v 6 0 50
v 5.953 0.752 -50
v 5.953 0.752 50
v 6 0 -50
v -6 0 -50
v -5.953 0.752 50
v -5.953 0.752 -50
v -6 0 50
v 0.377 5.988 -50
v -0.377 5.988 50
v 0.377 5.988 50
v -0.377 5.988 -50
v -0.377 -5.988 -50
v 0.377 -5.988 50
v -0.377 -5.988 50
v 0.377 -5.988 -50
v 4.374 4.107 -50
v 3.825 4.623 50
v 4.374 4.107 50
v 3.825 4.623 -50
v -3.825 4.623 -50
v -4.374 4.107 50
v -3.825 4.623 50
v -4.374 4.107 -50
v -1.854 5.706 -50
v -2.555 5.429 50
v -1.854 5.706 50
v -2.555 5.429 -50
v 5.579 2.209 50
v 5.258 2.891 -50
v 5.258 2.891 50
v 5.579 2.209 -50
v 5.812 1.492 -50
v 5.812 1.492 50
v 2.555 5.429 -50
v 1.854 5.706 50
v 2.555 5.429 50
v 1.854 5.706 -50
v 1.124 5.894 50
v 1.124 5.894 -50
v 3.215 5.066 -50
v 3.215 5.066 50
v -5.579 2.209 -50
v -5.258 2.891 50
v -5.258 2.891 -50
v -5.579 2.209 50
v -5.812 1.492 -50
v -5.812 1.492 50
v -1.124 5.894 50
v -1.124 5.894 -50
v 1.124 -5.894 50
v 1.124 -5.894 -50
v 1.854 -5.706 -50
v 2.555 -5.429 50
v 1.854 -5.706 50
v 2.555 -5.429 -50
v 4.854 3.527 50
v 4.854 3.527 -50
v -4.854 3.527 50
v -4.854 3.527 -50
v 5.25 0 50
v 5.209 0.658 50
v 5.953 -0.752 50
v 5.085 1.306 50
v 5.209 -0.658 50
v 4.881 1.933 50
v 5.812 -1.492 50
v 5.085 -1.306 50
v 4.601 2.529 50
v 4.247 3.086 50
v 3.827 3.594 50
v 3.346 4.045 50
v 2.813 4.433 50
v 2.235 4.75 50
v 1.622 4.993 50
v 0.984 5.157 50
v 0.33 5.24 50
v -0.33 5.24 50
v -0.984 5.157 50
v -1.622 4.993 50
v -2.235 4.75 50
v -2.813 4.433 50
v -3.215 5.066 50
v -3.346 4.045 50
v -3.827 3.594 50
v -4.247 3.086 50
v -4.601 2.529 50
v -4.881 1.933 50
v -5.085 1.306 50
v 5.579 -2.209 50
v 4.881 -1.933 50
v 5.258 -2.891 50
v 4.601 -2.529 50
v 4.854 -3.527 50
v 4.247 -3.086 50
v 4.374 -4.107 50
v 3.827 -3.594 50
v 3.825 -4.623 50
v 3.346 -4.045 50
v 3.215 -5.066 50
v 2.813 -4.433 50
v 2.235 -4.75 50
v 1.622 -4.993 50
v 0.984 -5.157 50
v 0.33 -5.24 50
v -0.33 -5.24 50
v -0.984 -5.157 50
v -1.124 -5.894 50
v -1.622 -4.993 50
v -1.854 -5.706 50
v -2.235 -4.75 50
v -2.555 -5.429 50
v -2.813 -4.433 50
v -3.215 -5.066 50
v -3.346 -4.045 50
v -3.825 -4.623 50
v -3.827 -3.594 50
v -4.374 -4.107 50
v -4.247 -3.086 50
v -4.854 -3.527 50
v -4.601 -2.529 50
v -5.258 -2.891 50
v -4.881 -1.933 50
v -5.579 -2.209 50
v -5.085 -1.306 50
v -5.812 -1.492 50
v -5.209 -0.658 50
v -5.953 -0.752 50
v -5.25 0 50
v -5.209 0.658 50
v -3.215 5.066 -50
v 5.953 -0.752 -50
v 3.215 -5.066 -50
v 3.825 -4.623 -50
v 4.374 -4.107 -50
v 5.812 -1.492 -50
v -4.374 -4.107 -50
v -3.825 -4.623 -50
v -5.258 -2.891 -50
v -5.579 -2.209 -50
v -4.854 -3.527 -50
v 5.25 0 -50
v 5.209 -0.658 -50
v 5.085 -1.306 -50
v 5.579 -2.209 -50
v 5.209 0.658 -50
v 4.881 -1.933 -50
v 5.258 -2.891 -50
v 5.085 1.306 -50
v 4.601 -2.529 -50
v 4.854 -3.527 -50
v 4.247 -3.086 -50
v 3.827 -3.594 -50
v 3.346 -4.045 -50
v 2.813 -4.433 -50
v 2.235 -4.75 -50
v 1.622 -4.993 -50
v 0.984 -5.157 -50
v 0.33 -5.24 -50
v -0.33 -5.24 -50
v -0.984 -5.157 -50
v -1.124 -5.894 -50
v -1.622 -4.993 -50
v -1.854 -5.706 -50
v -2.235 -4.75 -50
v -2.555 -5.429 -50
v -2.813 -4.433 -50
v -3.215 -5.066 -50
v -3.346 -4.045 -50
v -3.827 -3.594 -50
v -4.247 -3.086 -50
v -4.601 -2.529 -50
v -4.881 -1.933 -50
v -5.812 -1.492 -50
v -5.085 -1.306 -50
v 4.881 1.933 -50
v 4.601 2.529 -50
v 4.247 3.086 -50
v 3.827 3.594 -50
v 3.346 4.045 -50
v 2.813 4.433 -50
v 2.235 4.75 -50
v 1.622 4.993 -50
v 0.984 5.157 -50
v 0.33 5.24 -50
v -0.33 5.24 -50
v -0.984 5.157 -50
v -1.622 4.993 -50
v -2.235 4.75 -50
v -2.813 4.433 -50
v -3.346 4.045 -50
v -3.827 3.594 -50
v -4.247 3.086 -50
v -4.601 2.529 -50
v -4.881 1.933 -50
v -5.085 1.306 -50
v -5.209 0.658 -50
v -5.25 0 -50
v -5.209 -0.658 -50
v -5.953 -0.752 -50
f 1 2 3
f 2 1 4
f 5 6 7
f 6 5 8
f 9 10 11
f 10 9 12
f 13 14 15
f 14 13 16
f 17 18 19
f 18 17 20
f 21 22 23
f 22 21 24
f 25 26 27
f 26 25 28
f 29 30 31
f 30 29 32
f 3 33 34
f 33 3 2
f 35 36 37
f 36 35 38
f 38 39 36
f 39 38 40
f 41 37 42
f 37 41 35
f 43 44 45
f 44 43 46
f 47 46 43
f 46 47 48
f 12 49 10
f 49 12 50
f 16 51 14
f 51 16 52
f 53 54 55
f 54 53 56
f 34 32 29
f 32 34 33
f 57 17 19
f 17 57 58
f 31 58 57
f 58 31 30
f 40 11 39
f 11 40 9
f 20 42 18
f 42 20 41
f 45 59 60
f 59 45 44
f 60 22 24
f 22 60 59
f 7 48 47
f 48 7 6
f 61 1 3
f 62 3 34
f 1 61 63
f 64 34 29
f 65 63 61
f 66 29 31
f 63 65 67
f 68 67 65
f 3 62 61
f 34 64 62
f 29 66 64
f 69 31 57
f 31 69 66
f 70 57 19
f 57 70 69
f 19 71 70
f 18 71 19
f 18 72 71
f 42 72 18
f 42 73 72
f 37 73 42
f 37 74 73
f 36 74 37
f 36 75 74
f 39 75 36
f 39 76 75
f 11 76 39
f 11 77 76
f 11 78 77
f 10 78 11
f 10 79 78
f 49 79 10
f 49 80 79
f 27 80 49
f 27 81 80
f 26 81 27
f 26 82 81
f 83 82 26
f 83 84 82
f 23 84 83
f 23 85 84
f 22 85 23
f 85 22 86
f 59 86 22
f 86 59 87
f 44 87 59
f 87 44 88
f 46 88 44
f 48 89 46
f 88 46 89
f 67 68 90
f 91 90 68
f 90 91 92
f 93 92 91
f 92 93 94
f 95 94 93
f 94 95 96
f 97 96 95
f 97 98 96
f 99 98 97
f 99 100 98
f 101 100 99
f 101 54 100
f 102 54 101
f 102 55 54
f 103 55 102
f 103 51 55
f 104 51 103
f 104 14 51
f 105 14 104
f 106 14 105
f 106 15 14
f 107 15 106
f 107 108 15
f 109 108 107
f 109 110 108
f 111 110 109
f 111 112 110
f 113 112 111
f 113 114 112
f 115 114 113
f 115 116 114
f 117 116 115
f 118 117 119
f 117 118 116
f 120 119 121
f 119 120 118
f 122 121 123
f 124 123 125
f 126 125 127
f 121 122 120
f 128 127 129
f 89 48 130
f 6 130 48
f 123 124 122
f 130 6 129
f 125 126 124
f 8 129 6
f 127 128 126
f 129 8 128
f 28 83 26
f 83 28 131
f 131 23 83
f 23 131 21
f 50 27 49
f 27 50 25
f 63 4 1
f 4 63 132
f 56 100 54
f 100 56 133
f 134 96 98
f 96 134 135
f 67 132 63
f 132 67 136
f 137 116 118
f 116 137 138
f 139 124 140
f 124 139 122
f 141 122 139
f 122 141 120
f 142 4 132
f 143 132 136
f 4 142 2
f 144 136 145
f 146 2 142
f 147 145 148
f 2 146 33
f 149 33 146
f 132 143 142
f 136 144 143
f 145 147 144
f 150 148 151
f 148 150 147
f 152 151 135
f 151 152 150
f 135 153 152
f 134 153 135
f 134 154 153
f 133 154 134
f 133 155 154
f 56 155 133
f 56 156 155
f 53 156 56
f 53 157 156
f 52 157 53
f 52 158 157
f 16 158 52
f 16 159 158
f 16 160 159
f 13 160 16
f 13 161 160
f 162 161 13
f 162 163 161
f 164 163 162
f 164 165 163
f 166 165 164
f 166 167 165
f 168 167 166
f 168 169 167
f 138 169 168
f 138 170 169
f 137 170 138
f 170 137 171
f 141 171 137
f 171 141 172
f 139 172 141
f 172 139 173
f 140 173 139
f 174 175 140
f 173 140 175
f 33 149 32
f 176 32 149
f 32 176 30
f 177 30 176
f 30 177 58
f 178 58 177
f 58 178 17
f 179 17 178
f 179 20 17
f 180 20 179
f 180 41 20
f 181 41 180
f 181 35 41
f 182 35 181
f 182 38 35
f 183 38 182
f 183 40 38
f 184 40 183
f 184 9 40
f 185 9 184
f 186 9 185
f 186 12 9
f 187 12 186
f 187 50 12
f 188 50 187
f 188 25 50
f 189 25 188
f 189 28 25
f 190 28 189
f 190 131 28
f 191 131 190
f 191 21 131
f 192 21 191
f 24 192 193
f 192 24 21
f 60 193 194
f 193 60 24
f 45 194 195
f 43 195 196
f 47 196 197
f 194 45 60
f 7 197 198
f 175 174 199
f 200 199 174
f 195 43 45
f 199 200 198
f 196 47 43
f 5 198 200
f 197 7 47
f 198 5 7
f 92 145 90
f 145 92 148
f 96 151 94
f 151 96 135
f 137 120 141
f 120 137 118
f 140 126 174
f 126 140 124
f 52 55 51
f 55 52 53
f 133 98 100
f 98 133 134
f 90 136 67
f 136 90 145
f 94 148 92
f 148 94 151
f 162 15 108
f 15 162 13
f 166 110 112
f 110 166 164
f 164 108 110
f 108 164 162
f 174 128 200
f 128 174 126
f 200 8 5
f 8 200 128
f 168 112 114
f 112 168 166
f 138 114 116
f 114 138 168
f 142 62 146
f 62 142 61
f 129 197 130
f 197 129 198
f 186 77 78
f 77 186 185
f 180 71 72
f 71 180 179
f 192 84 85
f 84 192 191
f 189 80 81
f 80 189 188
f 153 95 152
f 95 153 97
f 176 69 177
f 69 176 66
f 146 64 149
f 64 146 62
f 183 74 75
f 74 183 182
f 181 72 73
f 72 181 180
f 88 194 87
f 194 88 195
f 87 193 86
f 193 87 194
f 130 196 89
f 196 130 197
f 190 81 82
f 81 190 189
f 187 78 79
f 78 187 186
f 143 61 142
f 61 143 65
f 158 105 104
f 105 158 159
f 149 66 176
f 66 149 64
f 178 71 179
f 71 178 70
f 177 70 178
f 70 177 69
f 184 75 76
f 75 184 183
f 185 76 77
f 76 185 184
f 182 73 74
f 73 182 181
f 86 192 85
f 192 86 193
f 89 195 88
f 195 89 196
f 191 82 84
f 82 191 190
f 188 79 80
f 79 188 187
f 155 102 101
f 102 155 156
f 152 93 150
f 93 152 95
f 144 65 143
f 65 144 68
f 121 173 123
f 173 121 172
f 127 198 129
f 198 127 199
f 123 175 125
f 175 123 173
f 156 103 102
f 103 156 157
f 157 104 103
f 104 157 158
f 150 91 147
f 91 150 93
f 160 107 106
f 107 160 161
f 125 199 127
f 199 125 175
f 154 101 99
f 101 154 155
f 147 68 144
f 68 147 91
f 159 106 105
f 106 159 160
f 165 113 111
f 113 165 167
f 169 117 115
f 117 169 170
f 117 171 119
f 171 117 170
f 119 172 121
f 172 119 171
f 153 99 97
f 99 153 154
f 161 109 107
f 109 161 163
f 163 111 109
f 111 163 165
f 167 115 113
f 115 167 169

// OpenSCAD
$fn = 50;


difference() {
	union() {
		translate(v = [0, 0, -50.0000000000]) {
			cylinder(h = 100, r = 6.0000000000);
		}
	}
	union() {
		translate(v = [0, 0, -100.0000000000]) {
			cylinder(h = 200, r = 5.2500000000);
		}
	}
}
